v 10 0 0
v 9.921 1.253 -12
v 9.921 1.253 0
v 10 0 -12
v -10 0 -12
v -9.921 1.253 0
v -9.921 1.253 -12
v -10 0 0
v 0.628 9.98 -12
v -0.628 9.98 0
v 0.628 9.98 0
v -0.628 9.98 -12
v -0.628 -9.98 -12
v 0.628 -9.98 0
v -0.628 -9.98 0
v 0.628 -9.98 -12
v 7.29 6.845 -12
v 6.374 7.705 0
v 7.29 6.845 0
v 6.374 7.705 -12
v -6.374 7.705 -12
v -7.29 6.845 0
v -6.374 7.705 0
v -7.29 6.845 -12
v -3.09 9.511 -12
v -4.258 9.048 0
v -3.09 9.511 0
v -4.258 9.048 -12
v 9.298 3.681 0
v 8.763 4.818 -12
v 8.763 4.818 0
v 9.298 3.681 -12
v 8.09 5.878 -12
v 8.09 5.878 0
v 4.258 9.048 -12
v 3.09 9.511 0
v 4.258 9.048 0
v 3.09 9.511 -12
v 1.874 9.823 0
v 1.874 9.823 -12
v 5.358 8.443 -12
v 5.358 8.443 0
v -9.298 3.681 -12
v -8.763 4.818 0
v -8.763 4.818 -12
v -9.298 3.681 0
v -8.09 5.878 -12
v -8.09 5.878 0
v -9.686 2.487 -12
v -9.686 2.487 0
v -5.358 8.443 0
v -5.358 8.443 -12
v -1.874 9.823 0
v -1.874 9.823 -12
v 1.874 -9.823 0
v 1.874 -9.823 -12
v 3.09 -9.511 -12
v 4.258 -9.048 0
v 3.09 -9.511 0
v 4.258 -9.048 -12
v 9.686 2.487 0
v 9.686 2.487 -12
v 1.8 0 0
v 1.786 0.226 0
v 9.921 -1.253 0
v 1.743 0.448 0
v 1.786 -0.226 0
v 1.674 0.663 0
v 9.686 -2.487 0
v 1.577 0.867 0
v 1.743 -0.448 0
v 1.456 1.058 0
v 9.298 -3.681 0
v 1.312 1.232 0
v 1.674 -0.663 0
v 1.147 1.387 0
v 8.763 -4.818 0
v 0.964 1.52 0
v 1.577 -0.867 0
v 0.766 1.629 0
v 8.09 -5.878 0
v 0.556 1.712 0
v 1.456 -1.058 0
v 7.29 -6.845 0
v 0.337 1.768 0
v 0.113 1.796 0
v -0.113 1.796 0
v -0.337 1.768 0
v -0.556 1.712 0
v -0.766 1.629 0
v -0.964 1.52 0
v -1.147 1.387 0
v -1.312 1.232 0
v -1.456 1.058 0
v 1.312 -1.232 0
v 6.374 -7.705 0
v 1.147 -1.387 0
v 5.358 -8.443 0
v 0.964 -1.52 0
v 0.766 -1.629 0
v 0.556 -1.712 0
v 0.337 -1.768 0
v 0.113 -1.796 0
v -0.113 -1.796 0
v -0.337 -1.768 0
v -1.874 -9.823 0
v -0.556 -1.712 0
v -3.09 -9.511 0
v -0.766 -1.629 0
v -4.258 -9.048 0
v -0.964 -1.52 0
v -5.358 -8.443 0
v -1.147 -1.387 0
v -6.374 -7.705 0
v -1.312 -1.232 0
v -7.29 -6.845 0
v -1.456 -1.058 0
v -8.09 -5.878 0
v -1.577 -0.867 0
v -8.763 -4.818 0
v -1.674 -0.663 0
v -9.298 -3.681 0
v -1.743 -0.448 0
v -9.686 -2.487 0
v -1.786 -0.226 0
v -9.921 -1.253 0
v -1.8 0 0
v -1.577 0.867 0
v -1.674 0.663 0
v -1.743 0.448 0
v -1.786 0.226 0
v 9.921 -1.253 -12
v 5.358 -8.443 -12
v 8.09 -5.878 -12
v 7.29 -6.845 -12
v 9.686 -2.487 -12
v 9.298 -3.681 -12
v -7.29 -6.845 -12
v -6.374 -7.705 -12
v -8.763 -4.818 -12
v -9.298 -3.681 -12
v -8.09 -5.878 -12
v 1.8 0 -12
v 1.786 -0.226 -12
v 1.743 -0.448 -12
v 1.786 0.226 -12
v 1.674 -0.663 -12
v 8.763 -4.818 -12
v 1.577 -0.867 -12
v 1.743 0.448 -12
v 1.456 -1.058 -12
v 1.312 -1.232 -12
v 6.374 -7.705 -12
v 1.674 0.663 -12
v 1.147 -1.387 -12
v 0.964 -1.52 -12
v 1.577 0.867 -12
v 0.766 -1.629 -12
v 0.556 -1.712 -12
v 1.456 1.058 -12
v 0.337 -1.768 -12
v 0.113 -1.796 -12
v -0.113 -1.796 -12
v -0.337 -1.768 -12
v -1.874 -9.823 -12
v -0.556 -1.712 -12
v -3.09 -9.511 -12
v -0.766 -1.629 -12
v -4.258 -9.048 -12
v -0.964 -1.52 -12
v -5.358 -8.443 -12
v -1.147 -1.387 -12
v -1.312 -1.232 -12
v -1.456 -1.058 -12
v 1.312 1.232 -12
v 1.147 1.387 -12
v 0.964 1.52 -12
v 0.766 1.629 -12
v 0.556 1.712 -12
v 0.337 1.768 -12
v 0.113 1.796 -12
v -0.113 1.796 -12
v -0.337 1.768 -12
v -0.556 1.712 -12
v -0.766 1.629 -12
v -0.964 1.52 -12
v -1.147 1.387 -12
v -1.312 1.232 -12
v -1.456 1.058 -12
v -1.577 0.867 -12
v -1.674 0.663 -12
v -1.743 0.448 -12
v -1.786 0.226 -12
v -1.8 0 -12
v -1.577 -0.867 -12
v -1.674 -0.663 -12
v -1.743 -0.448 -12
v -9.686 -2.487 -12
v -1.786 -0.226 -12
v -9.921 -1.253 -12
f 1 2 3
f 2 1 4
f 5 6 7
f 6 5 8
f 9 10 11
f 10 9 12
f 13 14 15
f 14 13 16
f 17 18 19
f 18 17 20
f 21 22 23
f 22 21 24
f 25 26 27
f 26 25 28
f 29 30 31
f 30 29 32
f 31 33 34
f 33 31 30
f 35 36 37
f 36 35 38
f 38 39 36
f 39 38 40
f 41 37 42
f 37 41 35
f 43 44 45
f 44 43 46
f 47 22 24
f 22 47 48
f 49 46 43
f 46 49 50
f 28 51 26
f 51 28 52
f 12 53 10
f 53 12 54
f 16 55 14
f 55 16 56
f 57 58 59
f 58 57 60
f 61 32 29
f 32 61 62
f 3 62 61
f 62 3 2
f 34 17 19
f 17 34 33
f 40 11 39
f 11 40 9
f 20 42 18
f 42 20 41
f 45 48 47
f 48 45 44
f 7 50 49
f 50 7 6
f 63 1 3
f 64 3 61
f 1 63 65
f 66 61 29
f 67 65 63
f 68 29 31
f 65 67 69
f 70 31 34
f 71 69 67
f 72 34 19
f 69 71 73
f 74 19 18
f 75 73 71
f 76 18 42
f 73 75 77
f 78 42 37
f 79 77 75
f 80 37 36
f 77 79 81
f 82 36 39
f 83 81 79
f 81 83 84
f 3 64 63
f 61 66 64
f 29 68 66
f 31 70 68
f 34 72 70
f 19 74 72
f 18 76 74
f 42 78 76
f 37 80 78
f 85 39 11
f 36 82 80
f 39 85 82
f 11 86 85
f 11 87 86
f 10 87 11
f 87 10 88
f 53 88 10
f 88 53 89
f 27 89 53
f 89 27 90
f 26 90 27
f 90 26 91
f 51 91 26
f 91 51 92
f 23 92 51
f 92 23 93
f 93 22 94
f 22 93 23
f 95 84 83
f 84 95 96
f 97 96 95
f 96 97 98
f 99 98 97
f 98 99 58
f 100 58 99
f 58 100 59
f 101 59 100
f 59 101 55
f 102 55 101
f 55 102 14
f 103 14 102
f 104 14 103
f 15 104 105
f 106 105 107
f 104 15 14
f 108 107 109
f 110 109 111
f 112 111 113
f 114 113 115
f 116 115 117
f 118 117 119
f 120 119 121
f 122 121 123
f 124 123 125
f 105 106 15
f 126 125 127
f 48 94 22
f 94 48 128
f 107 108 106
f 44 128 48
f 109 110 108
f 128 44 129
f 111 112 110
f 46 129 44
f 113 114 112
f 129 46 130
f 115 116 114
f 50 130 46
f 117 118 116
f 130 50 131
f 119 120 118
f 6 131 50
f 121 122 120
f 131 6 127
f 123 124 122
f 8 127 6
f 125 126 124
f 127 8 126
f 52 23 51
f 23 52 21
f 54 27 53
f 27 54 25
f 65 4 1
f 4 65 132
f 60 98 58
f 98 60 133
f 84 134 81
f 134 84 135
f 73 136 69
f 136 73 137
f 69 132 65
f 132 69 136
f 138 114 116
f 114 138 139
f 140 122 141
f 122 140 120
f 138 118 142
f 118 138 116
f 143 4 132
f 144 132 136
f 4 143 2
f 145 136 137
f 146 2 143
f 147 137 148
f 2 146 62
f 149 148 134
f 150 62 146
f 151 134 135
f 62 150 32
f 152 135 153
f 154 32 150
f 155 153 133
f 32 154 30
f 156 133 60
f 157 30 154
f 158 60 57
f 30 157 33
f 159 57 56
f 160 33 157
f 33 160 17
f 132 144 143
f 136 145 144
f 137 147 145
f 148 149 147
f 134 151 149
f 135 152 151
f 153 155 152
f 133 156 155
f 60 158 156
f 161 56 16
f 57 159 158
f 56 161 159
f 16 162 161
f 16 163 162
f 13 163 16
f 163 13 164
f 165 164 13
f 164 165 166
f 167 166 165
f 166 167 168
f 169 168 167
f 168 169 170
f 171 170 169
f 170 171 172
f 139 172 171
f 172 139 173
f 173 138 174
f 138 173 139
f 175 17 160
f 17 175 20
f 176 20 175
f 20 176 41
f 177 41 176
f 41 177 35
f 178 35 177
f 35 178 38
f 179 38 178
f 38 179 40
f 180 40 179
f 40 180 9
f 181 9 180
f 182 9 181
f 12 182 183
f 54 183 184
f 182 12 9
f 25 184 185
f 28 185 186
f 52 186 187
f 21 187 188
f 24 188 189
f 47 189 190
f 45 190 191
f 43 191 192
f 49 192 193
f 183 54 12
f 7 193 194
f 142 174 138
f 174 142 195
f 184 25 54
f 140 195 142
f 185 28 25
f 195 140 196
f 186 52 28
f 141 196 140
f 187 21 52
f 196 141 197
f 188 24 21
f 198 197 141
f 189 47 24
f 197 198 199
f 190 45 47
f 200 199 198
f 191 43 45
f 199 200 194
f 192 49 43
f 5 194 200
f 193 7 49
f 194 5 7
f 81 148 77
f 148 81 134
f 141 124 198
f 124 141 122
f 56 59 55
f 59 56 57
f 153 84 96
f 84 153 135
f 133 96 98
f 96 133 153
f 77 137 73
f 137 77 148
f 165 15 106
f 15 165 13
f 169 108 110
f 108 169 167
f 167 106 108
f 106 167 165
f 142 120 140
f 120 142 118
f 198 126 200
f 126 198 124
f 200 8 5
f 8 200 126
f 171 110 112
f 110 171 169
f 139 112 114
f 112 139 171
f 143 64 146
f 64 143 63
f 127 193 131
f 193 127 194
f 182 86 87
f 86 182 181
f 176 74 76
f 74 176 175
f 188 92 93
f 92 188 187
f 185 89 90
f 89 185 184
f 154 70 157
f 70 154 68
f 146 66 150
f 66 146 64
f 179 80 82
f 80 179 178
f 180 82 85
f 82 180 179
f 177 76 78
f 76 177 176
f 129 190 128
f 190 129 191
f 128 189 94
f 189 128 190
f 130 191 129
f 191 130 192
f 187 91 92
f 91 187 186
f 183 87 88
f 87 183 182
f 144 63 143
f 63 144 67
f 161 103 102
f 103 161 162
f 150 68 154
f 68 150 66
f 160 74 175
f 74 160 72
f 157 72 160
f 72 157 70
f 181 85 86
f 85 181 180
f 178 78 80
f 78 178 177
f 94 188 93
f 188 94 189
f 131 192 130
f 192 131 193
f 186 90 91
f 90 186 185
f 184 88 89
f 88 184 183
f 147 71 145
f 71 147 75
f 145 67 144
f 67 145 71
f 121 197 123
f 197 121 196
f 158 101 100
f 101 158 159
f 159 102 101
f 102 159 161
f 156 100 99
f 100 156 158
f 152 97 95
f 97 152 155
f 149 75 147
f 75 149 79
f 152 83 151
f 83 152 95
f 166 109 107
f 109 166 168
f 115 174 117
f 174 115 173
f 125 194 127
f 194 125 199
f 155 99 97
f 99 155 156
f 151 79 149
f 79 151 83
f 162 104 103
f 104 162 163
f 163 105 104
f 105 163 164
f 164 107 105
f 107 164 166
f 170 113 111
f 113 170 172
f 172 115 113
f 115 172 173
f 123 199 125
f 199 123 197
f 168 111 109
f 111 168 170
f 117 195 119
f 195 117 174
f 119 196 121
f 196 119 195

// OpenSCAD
$fn = 50;


difference() {
	union() {
		translate(v = [0, 0, -12.0000000000]) {
			cylinder(h = 12, r = 10.0000000000);
		}
		cylinder(h = 0, r = 19.0000000000);
	}
	union() {
		#translate(v = [0, 0, -12]) {
			cylinder(h = 12, r = 1.8000000000);
		}
	}
}
